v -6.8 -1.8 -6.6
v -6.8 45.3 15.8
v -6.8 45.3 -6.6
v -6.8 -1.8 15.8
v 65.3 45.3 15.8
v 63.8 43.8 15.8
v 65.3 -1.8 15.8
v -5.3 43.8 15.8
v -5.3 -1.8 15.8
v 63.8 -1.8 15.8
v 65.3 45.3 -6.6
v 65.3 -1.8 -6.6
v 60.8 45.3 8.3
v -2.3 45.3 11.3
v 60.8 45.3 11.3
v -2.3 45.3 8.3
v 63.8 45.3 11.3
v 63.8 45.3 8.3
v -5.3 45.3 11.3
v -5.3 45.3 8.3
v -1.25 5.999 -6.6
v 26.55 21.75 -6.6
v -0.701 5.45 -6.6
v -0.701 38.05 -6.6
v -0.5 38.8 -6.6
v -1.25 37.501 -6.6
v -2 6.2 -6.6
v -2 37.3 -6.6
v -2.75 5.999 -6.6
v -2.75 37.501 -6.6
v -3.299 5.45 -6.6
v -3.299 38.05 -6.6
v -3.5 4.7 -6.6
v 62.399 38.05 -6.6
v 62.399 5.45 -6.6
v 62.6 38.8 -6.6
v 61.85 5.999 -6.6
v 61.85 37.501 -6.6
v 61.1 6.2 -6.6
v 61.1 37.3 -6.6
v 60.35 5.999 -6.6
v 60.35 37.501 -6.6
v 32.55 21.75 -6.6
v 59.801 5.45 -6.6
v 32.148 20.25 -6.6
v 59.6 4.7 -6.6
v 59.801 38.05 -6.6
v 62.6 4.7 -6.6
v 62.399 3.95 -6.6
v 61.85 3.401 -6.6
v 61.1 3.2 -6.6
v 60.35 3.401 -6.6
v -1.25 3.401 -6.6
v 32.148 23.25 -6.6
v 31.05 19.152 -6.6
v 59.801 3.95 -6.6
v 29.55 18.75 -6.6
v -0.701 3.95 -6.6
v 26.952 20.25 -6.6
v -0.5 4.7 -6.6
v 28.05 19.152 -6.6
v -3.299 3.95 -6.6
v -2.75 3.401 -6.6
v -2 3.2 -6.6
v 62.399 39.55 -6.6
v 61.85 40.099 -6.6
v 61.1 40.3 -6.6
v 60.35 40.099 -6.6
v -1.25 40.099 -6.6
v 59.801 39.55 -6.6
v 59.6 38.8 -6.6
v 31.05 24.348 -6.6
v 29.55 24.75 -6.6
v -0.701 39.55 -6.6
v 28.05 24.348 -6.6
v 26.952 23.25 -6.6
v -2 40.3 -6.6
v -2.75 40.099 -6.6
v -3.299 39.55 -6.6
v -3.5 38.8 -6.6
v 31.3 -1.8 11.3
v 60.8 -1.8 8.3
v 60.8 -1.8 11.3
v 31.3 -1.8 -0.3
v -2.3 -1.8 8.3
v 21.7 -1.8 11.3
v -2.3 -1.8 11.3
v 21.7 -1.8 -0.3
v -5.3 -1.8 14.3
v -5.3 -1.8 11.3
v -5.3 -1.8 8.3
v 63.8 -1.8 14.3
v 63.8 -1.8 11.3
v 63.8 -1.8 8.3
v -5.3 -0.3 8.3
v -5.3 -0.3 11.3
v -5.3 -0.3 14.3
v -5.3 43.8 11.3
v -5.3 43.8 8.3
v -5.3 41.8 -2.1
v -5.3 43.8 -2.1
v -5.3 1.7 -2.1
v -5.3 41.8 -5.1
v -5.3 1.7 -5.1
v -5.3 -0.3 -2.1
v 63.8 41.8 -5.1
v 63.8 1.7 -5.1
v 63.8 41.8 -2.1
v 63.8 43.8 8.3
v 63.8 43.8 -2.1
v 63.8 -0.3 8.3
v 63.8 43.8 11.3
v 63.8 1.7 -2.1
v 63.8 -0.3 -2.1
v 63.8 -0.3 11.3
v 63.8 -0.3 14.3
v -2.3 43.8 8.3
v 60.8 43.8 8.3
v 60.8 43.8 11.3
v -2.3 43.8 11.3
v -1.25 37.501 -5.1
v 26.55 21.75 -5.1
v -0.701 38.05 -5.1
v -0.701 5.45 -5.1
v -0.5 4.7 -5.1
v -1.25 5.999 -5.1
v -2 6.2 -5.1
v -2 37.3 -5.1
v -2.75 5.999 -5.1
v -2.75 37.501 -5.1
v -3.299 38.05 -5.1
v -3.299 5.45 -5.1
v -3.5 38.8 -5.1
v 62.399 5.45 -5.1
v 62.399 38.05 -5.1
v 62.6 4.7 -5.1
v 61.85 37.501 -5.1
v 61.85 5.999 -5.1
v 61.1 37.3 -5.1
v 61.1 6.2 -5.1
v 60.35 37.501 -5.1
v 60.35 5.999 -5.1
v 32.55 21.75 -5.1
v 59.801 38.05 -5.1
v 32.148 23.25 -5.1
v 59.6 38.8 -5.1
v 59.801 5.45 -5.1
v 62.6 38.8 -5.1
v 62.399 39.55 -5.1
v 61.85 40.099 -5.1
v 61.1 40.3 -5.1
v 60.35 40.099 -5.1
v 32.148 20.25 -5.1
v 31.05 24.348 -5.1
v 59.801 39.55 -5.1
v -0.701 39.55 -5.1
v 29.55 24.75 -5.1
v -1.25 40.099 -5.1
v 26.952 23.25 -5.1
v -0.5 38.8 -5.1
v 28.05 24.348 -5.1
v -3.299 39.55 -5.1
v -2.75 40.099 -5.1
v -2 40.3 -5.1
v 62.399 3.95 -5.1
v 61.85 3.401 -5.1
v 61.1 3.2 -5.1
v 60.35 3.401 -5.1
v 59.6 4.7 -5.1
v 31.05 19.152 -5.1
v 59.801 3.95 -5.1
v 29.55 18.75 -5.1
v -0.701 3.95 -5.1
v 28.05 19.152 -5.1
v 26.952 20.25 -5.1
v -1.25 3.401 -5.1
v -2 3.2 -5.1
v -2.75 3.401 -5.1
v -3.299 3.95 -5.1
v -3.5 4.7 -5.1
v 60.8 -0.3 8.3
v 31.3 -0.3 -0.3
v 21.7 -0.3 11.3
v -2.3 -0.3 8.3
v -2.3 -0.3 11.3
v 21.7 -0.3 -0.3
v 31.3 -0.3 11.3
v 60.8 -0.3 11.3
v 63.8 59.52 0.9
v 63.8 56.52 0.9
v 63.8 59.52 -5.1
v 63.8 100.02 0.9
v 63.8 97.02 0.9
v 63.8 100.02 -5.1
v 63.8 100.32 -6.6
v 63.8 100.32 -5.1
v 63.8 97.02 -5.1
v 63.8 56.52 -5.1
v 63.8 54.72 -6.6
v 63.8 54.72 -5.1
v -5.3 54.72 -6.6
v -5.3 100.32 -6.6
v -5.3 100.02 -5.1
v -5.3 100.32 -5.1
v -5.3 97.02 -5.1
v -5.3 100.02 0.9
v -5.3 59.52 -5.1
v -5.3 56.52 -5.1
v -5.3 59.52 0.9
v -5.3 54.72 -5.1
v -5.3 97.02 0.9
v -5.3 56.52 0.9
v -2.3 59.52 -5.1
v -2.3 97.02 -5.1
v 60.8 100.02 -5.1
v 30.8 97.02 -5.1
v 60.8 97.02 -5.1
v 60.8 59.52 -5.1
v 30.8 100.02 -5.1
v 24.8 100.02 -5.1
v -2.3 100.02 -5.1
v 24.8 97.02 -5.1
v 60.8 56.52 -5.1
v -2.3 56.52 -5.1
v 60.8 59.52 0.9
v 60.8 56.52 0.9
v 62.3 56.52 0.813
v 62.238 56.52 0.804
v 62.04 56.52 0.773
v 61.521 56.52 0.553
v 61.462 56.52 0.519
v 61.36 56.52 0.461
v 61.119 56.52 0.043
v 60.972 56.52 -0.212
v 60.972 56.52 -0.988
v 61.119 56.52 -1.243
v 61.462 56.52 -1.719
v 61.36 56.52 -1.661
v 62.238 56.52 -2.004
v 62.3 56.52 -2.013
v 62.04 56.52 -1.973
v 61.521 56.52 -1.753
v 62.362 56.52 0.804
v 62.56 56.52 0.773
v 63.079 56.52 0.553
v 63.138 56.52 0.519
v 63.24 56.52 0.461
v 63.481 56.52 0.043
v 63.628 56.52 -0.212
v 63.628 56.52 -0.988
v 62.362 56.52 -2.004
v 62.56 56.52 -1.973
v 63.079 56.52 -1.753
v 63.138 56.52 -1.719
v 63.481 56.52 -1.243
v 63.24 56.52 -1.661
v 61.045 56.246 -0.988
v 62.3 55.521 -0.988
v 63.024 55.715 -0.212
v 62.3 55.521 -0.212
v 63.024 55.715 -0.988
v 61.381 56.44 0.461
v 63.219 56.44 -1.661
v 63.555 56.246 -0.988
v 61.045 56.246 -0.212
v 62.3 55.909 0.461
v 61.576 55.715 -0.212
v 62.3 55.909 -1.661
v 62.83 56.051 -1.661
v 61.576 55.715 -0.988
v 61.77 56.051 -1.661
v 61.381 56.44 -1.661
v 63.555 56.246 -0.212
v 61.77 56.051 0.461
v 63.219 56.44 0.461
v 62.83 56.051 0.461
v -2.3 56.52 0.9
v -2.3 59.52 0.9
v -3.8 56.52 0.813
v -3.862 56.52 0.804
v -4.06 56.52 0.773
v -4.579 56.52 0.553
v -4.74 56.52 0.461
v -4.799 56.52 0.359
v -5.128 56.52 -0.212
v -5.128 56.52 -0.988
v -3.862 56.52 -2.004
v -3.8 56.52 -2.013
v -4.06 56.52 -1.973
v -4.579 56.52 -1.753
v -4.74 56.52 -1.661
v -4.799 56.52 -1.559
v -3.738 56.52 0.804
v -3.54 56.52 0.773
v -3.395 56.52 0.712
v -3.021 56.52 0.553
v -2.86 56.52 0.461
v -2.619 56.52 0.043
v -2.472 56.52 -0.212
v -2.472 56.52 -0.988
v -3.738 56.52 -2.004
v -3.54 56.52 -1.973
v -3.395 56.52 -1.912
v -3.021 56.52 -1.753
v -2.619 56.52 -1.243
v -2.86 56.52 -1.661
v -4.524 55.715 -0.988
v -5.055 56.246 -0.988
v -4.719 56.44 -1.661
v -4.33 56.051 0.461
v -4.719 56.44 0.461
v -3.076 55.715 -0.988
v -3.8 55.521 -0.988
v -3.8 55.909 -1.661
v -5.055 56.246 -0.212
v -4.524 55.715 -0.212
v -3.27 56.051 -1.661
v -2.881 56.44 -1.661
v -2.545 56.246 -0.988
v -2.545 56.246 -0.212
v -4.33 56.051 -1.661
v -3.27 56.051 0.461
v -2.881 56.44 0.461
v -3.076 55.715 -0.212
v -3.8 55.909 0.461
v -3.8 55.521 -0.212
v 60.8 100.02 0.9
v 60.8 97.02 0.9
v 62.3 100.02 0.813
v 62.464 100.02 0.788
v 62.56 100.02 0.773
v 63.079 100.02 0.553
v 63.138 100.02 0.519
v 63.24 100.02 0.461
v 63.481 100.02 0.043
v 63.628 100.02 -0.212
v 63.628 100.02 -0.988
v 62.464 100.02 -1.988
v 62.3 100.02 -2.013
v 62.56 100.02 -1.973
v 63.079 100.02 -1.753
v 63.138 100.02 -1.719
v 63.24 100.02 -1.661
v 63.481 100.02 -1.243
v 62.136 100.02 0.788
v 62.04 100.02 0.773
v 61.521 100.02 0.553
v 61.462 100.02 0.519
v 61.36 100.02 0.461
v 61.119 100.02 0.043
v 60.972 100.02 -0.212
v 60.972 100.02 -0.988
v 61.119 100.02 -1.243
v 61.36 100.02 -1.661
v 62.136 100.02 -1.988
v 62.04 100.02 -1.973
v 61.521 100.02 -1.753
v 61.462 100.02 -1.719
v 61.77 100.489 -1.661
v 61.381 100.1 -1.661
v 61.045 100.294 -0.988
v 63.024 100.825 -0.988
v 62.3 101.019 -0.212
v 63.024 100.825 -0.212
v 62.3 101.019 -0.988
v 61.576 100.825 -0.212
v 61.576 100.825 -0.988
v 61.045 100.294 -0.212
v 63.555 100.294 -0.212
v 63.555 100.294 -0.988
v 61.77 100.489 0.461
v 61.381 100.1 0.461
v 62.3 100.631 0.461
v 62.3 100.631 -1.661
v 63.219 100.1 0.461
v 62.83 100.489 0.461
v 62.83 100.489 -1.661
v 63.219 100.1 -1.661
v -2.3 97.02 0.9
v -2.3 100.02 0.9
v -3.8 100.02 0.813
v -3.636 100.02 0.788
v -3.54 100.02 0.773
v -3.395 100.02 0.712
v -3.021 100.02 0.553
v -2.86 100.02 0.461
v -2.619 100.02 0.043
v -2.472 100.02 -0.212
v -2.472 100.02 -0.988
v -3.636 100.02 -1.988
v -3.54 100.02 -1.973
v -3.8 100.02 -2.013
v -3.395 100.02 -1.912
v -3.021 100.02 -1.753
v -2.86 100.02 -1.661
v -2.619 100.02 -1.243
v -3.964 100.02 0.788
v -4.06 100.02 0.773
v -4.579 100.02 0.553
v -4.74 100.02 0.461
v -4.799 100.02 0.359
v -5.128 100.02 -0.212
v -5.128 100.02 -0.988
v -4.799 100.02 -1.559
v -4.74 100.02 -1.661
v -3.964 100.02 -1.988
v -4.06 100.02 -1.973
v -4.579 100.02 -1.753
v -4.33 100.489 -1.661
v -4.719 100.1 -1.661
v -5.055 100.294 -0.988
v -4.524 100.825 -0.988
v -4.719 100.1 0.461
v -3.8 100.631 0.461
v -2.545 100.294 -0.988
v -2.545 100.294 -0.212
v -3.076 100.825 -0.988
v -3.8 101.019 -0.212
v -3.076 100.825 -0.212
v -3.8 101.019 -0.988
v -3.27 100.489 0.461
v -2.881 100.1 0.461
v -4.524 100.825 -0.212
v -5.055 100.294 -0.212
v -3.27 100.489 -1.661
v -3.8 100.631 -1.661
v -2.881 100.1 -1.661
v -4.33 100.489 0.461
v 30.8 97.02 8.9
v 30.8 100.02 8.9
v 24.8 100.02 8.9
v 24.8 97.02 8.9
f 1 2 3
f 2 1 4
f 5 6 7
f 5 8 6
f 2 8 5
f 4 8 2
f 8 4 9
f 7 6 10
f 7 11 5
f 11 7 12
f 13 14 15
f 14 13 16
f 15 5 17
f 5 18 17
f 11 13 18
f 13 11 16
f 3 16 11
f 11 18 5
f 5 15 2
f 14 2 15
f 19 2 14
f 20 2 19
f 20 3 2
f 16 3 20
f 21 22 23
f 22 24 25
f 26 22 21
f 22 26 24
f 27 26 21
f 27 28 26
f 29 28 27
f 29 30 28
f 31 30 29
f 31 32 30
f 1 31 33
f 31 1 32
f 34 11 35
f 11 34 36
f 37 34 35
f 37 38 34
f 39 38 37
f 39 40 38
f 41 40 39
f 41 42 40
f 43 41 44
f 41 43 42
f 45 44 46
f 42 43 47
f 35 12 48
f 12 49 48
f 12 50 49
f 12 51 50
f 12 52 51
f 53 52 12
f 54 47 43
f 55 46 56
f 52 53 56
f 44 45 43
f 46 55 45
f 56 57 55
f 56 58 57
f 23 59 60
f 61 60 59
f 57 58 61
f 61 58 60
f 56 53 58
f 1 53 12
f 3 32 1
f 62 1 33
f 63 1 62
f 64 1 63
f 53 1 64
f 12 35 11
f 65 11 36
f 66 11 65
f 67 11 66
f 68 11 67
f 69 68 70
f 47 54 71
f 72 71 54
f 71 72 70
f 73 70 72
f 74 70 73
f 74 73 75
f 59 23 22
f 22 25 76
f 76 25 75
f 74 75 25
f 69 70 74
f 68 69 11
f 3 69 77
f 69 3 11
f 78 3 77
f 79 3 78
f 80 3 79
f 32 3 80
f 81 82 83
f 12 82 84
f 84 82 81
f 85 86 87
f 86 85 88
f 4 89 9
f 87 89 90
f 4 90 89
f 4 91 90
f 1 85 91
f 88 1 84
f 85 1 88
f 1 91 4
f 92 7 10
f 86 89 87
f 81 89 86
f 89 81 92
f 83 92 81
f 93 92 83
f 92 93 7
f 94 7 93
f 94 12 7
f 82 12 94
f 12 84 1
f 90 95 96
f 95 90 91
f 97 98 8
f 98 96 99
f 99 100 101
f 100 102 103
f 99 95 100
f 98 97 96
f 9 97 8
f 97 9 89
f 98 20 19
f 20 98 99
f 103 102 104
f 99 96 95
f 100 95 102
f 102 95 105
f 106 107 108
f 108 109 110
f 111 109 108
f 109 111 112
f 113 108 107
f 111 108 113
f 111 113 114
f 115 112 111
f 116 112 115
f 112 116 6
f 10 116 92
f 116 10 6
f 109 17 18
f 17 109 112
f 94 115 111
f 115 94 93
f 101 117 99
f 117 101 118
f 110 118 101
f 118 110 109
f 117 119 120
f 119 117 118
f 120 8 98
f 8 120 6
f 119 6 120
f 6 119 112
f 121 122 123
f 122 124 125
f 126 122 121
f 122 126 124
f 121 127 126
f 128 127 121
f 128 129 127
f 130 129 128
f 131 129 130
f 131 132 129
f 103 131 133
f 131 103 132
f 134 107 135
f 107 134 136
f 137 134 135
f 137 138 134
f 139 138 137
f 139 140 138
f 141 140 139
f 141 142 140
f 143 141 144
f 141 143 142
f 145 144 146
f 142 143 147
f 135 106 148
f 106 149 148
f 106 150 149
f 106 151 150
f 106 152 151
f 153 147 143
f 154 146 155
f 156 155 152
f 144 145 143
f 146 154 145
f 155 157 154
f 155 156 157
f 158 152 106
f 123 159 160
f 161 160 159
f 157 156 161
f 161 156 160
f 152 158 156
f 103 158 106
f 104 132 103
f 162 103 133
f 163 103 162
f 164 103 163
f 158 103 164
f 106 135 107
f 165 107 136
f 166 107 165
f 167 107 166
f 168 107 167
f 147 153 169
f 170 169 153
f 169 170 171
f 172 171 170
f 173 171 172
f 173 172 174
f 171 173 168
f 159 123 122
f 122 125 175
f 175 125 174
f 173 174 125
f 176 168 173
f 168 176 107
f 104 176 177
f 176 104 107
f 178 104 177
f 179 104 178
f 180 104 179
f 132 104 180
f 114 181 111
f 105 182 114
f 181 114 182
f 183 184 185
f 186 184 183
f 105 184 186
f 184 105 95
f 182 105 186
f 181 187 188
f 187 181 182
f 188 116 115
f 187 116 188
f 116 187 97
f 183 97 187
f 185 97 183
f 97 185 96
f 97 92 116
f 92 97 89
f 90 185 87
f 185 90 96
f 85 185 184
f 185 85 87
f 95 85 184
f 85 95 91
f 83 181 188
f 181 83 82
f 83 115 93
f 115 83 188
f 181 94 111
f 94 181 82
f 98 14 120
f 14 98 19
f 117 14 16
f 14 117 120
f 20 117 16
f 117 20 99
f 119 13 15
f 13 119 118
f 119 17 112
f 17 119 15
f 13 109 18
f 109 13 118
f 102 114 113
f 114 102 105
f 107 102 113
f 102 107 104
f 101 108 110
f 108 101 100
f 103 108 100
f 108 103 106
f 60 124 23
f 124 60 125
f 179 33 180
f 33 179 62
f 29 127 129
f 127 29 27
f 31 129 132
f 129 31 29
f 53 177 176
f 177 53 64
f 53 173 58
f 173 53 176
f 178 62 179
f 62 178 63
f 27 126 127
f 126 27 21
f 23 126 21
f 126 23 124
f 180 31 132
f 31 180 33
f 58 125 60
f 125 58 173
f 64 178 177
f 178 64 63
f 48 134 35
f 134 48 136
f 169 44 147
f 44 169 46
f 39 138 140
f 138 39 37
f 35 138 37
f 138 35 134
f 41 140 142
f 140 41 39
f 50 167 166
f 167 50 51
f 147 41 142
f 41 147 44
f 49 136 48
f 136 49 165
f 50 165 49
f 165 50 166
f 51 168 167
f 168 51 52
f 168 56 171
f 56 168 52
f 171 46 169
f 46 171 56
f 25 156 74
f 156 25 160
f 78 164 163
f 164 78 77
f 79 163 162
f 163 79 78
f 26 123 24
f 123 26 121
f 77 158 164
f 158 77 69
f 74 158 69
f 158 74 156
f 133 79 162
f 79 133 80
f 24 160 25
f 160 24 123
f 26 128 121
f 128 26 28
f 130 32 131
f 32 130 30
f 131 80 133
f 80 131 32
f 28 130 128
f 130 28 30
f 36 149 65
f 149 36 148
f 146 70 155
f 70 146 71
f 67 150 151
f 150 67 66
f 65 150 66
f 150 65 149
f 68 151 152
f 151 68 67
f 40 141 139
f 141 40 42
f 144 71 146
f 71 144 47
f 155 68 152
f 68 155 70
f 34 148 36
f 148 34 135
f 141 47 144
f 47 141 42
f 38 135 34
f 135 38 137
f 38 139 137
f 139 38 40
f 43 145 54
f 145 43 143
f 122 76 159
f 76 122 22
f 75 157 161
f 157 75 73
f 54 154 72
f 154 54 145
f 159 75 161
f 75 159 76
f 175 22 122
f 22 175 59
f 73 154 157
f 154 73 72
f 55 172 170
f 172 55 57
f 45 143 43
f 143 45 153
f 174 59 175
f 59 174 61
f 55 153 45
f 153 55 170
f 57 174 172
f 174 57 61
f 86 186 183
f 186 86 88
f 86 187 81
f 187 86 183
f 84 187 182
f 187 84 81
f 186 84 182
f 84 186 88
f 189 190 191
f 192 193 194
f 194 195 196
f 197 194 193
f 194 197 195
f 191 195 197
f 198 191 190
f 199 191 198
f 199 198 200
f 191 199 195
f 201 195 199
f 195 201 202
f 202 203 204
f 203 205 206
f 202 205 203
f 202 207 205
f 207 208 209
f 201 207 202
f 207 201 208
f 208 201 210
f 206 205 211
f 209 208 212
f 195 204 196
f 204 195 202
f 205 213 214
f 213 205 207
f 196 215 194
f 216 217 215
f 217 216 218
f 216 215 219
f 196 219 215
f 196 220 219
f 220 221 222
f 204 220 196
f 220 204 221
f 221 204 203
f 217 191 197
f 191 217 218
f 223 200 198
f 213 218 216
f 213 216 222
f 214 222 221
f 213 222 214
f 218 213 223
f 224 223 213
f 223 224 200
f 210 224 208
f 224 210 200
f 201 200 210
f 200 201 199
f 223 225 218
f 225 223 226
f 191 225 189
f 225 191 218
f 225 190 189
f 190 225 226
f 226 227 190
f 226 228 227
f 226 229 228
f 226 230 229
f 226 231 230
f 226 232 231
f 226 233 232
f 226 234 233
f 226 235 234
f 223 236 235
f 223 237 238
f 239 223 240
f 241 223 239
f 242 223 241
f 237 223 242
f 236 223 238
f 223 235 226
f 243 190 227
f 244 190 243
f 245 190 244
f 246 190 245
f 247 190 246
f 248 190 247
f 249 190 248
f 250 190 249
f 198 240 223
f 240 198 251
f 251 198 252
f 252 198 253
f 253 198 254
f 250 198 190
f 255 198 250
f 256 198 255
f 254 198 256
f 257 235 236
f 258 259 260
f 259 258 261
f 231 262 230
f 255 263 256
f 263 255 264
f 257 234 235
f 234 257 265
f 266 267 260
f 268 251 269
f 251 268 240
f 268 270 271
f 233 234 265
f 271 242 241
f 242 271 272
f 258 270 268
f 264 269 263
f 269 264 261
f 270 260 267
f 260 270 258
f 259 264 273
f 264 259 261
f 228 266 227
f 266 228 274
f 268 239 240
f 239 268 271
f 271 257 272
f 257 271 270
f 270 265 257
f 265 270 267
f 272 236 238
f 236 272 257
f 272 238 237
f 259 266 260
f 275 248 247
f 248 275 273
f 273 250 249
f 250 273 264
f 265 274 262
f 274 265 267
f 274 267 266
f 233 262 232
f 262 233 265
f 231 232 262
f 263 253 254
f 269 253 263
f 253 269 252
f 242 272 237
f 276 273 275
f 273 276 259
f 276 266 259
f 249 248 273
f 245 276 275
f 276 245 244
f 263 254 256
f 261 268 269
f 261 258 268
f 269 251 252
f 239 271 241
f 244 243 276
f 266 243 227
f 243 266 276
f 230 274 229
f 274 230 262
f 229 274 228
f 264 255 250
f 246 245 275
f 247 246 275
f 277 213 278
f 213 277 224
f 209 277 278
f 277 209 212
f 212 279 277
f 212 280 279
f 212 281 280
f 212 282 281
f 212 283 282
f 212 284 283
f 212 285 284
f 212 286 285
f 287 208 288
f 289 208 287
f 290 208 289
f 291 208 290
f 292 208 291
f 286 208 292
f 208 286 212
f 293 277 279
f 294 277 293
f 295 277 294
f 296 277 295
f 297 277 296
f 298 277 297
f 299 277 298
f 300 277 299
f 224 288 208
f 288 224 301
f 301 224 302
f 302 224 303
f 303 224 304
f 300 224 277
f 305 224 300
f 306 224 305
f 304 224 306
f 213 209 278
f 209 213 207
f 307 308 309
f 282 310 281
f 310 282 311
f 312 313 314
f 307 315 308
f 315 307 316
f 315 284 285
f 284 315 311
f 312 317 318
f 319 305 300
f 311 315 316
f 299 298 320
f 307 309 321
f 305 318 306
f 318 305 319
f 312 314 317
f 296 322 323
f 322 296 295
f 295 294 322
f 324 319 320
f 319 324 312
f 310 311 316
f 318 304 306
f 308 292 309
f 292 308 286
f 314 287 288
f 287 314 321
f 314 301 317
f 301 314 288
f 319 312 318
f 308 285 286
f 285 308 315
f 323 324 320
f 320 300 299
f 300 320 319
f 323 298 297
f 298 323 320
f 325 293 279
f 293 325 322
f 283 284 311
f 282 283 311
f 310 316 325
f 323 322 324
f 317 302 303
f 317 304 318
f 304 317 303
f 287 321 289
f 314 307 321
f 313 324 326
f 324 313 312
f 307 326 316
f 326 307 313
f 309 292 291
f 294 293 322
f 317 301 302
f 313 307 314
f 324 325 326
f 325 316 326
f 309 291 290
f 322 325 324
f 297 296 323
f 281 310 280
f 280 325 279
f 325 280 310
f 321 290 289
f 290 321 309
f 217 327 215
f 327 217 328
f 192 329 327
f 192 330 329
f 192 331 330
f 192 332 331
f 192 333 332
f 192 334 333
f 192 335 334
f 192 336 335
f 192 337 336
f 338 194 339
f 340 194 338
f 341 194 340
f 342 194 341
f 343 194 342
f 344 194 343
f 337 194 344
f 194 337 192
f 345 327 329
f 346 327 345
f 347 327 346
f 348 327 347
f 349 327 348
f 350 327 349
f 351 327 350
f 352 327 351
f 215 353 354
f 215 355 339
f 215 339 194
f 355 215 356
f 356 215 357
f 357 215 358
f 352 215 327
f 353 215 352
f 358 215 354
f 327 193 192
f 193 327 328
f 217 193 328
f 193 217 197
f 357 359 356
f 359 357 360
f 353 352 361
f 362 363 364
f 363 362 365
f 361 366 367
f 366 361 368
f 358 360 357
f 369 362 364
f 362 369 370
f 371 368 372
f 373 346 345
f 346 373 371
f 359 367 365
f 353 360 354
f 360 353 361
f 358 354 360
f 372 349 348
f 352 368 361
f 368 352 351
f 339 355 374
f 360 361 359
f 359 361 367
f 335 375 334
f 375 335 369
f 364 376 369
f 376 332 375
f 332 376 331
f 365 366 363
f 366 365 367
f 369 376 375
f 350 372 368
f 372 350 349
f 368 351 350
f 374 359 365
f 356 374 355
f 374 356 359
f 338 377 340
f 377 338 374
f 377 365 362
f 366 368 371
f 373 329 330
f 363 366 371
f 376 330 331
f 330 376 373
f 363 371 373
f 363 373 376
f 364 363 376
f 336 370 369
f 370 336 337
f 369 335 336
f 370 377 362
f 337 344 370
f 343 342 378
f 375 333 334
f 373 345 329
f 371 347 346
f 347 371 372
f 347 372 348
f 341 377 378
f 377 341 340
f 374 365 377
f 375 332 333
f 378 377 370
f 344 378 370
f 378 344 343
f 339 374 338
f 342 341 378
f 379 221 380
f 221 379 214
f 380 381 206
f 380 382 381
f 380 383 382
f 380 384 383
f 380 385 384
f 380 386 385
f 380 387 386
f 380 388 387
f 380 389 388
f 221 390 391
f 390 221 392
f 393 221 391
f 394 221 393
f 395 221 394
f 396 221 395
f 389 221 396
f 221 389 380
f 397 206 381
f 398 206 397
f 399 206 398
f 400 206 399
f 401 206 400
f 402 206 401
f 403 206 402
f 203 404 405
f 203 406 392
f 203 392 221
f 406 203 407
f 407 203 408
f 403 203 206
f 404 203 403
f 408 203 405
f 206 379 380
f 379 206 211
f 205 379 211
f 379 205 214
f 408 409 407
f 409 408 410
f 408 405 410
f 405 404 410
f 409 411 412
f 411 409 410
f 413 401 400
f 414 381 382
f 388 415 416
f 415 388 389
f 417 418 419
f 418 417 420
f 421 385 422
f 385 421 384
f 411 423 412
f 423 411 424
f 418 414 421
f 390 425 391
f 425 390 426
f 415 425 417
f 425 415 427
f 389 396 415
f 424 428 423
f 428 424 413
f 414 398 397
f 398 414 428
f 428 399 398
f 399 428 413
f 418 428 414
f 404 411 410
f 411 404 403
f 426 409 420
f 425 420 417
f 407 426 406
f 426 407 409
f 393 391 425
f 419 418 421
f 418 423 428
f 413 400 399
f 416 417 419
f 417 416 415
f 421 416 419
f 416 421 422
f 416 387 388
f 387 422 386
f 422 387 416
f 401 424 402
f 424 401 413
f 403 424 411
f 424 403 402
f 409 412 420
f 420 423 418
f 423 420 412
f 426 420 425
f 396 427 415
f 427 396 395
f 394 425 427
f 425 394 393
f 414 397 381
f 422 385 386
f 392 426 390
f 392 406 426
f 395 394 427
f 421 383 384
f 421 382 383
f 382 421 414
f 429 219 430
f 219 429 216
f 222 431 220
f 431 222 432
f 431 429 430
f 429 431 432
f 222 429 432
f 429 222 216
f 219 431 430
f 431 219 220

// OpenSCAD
//he important connectors and
// holes. You can define here if you have shorte
// This is the iotsa board itself, including tned the board, which will
// not only change the board itself, but also the box we are going to create around it.
//
// How many experiment rows of the PCB have been cut
numberOfRowsRemoved = 0; // [1:10]
extraMMRemoved = 0; // [0:no rows removed,2.2:rows removed]
// ignore computed values:
numberOfMMRemoved = extraMMRemoved + (numberOfRowsRemoved*2.54);

//
// Box parameters. We are going to compute the size from the parameters.
//
// How thick should the box walls be
boxThickness = 1.5;
// gap we want between board and box (on all sides, individually) and around connector
leeWay = 0.3;   
// Height (above PCB) of tallest component
iotsaComponentHeight = 14;
// How far the soldering extends below the board.
iotsaSolderingHeight = 3;
// ignore the computed variables
boxBottomThickness = boxThickness;
boxFrontThickness = boxThickness;
boxLeftThickness = boxThickness;
boxRightThickness = boxThickness;
boxBackThickness = boxThickness;
boxTopThickness = boxThickness;

// ignore computed values:
iotsaBoardXSize = 63.5 - numberOfMMRemoved;
// ignore computed values:
iotsaBoardYSize = 43.5;

// ignore standard board values:
boardThickness = 1.8;
// ignore standard board values:
regulatorAngle = 35;
// ignore standard board values:
esp12AntennaStickout = 5;


module iotsaBoard() {
    module esp12() {
        union() {
            cube([24, 16, 2]); // the esp-12 board
            translate([8, 1.5, 2]) cube([15, 13, 2.5]); // the metal cap
        }
    }
    module regulator() {
        rotate([-regulatorAngle, 0, 0])
        translate([0, 0, 5])
        union() {
            translate([0, 4.5, 0]) cube([10.2, 1.3, 15]);
            translate([0, 0, 0]) cube([10.2, 4.5, 8.5]);
        }
    }
    module powerjack() {
        difference() {
            cube([9, 15, 11]);
            translate([4.5, -1, 7]) rotate([-90, 0, 0]) cylinder(14, d=6);
        }
    }
    translate([0, 0, -1.8])
    union() {
        // The board
        difference() {
            cube([iotsaBoardXSize,iotsaBoardYSize,1.8]);
            translate([2, 2, -0.1]) cylinder(2, d=2, center=false, $fn=12);
            translate([2, 41, -0.1]) cylinder(2, d=2, center=false, $fn=12);
            translate([36.5, 2, -0.1]) cylinder(2, d=2, center=false, $fn=12);
            translate([36.5, 41, -0.1]) cylinder(2, d=2, center=false, $fn=12);
            translate([60.5, 2, -0.1]) cylinder(2, d=2, center=false, $fn=12);
            translate([60.5, 41, -0.1]) cylinder(2, d=2, center=false, $fn=12);
        }
        // The components
        translate([-esp12AntennaStickout, 13.5, 1.8]) esp12();
        translate([20, 15, 1.8]) regulator();
        translate([22, -3, 1.8]) powerjack();
    }
}


// Computed parameters
innerXSize = iotsaBoardXSize + esp12AntennaStickout + 2*leeWay;
innerYSize = iotsaBoardYSize + 2*leeWay;
innerZSize = boardThickness + iotsaComponentHeight + iotsaSolderingHeight + 2*leeWay;

outerXSize = innerXSize + boxLeftThickness + boxRightThickness;
outerYSize = innerYSize + boxFrontThickness + boxBackThickness;
outerZSize = innerZSize + boxBottomThickness + boxTopThickness;

strutThickness = 2;
retainerWidth = 3;
retainerLength = 6;

module box() {
    
    module basicBox() {
         difference() {
            cube([outerXSize, outerYSize, outerZSize]);
            translate([boxLeftThickness, boxFrontThickness, boxBottomThickness])
                cube([innerXSize, innerYSize, innerZSize+boxTopThickness+1]);
        }
    }
    
    module completeBox() {
     translate([-esp12AntennaStickout-boxLeftThickness-leeWay, -boxFrontThickness-leeWay, -(boardThickness+iotsaSolderingHeight+boxBottomThickness+leeWay)])
        union() {
            // The box itself, with the cutouts for the lid
            difference() {
                basicBox();
                // Front cutout
                translate([boxLeftThickness, -0.5*boxFrontThickness, outerZSize-boxTopThickness]) 
                    cube([innerXSize, 2*boxFrontThickness, 2*boxTopThickness]);
                // back cutout
                * translate([boxLeftThickness, innerYSize+boxFrontThickness-0.5*leeWay, outerZSize-boxTopThickness-boxBottomThickness]) 
                    cube([innerXSize, 0.5*boxBackThickness+leeWay, 0.5*boxTopThickness]);

                // front left retainer hole
                translate([boxLeftThickness,-0.5*boxFrontThickness, outerZSize-boxTopThickness-retainerLength]) 
                    cube([retainerWidth, 2*boxFrontThickness, retainerWidth]); 
                // front right retainer hole
                translate([outerXSize-boxRightThickness-retainerWidth, -0.5*boxFrontThickness, outerZSize-boxTopThickness-retainerLength]) 
                    cube([retainerWidth, 2*boxFrontThickness, retainerWidth]); 

                // back left retainer hole
                translate([boxLeftThickness,innerYSize+boxFrontThickness-0.5*boxBackThickness, outerZSize-boxTopThickness-retainerLength]) 
                    cube([retainerWidth, 2*boxBackThickness, retainerWidth]); 
                // back right retainer hole
                translate([outerXSize-boxRightThickness-retainerWidth, innerYSize+boxFrontThickness-0.5*boxBackThickness, outerZSize-boxTopThickness-retainerLength]) 
                    cube([retainerWidth, 2*boxBackThickness, retainerWidth]); 
            }
            // The front support for the iotsa board
            cube([outerXSize, boxFrontThickness+strutThickness, boxBottomThickness+iotsaSolderingHeight]);
            // The back support for the outsa board
            translate([0, innerYSize+boxFrontThickness-strutThickness, 0])
                cube([outerXSize, boxBackThickness+strutThickness, boxBottomThickness+iotsaSolderingHeight]);
        }
   }
    
    module frontHoles() {
        // Holes in the front. X and Z relative to iotsa frontleft corner, Y should be 2*frontThickness.
        translate([22-leeWay, 0, 0-leeWay]) cube([9+2*leeWay, 2*boxFrontThickness, 11+2*leeWay]);
    }
    module rightHoles() {
        // Holes on the right. Y and Z are relative to iotsa frontright cornet, X should be 2* rightThickness
        * translate([0, 16, 0]) cube([2*boxRightThickness, 9+2*leeWay, 11+2*leeWay]);
    }
    module bottomHoles() {
        // Holes in the bottom. X and Y are relative to inner box frontleft corner, Z should be 2*bottomThickness
        // 4 screw holes
        translate([3, 3+strutThickness, 0]) cylinder(2*boxBottomThickness, d=3, $fn=12);
        translate([innerXSize-3, 3+strutThickness, 0]) cylinder(2*boxBottomThickness, d=3, $fn=12);
        translate([3, innerYSize-(3+strutThickness), 0]) cylinder(2*boxBottomThickness, d=3, $fn=12);
        translate([innerXSize-3, innerYSize-(3+strutThickness), 0]) cylinder(2*boxBottomThickness, d=3, $fn=12);
        
        // center hole for wires
        translate([innerXSize/2, innerYSize/2, 0]) cylinder(2*boxBottomThickness, d=6, $fn=12);
    }
    
    union() {
        difference() {
            // The box itself
            completeBox();
            // The holes in the enclosure
            translate([0, -1.5*boxFrontThickness-leeWay, 0]) frontHoles();
            
            translate([iotsaBoardXSize+leeWay-0.5*boxRightThickness, 0, 0]) rightHoles();
            
            translate([-esp12AntennaStickout, -leeWay, -(boardThickness+iotsaSolderingHeight+1.5*boxBottomThickness+leeWay)]) bottomHoles();
            
        }
        % iotsaBoard();
    }
}

module lid() {
      translate([-esp12AntennaStickout-leeWay, -boxFrontThickness-leeWay, iotsaComponentHeight + leeWay])
        union() {
            // The lid itself
            cube([innerXSize, innerYSize+boxFrontThickness, boxTopThickness]);
            // The left front retainer rod
            translate([0, boxFrontThickness+leeWay, -retainerLength]) cube([retainerWidth, retainerWidth, retainerLength+boxTopThickness]);
            translate([0.5*retainerWidth, 0.75*retainerWidth, -retainerLength+0.5*retainerWidth]) sphere(d=retainerWidth, $fn=12);

            // The right front retainer rod
            translate([innerXSize-retainerWidth, boxFrontThickness+leeWay, -retainerLength]) cube([retainerWidth, retainerWidth, retainerLength+boxTopThickness]);
            translate([innerXSize-0.5*retainerWidth, 0.75*retainerWidth, -retainerLength+0.5*retainerWidth]) sphere(d=retainerWidth, $fn=12);

            // The left back retainer rod
            translate([0, innerYSize+boxFrontThickness-retainerWidth-leeWay, -retainerLength]) cube([retainerWidth, retainerWidth, retainerLength+boxTopThickness]);
            translate([0.5*retainerWidth, innerYSize+boxFrontThickness-0.25*retainerWidth, -retainerLength+0.5*retainerWidth]) sphere(d=retainerWidth, $fn=12);

            // The right back retainer rod
            translate([innerXSize-retainerWidth, innerYSize+boxFrontThickness-retainerWidth-leeWay, -retainerLength]) cube([retainerWidth, retainerWidth, retainerLength+boxTopThickness]);
            translate([innerXSize-0.5*retainerWidth, innerYSize+boxFrontThickness-0.25*retainerWidth, -retainerLength+0.5*retainerWidth]) sphere(d=retainerWidth, $fn=12);
            
            // The board locking rod
            translate([36-retainerWidth, innerYSize+boxFrontThickness-retainerWidth-leeWay, -iotsaComponentHeight]) cube([2*retainerWidth, retainerWidth, iotsaComponentHeight+boxTopThickness]);
        }
}

box();
% lid();

translate([outerXSize-(esp12AntennaStickout+boxLeftThickness+leeWay), 1.2*outerYSize, outerZSize-(boardThickness+iotsaSolderingHeight+boxBottomThickness+leeWay)]) rotate([0, 180, 0]) translate([(esp12AntennaStickout+boxLeftThickness+leeWay), 0, (boardThickness+iotsaSolderingHeight+boxBottomThickness+leeWay)]) {
    % box();
    lid();
}
